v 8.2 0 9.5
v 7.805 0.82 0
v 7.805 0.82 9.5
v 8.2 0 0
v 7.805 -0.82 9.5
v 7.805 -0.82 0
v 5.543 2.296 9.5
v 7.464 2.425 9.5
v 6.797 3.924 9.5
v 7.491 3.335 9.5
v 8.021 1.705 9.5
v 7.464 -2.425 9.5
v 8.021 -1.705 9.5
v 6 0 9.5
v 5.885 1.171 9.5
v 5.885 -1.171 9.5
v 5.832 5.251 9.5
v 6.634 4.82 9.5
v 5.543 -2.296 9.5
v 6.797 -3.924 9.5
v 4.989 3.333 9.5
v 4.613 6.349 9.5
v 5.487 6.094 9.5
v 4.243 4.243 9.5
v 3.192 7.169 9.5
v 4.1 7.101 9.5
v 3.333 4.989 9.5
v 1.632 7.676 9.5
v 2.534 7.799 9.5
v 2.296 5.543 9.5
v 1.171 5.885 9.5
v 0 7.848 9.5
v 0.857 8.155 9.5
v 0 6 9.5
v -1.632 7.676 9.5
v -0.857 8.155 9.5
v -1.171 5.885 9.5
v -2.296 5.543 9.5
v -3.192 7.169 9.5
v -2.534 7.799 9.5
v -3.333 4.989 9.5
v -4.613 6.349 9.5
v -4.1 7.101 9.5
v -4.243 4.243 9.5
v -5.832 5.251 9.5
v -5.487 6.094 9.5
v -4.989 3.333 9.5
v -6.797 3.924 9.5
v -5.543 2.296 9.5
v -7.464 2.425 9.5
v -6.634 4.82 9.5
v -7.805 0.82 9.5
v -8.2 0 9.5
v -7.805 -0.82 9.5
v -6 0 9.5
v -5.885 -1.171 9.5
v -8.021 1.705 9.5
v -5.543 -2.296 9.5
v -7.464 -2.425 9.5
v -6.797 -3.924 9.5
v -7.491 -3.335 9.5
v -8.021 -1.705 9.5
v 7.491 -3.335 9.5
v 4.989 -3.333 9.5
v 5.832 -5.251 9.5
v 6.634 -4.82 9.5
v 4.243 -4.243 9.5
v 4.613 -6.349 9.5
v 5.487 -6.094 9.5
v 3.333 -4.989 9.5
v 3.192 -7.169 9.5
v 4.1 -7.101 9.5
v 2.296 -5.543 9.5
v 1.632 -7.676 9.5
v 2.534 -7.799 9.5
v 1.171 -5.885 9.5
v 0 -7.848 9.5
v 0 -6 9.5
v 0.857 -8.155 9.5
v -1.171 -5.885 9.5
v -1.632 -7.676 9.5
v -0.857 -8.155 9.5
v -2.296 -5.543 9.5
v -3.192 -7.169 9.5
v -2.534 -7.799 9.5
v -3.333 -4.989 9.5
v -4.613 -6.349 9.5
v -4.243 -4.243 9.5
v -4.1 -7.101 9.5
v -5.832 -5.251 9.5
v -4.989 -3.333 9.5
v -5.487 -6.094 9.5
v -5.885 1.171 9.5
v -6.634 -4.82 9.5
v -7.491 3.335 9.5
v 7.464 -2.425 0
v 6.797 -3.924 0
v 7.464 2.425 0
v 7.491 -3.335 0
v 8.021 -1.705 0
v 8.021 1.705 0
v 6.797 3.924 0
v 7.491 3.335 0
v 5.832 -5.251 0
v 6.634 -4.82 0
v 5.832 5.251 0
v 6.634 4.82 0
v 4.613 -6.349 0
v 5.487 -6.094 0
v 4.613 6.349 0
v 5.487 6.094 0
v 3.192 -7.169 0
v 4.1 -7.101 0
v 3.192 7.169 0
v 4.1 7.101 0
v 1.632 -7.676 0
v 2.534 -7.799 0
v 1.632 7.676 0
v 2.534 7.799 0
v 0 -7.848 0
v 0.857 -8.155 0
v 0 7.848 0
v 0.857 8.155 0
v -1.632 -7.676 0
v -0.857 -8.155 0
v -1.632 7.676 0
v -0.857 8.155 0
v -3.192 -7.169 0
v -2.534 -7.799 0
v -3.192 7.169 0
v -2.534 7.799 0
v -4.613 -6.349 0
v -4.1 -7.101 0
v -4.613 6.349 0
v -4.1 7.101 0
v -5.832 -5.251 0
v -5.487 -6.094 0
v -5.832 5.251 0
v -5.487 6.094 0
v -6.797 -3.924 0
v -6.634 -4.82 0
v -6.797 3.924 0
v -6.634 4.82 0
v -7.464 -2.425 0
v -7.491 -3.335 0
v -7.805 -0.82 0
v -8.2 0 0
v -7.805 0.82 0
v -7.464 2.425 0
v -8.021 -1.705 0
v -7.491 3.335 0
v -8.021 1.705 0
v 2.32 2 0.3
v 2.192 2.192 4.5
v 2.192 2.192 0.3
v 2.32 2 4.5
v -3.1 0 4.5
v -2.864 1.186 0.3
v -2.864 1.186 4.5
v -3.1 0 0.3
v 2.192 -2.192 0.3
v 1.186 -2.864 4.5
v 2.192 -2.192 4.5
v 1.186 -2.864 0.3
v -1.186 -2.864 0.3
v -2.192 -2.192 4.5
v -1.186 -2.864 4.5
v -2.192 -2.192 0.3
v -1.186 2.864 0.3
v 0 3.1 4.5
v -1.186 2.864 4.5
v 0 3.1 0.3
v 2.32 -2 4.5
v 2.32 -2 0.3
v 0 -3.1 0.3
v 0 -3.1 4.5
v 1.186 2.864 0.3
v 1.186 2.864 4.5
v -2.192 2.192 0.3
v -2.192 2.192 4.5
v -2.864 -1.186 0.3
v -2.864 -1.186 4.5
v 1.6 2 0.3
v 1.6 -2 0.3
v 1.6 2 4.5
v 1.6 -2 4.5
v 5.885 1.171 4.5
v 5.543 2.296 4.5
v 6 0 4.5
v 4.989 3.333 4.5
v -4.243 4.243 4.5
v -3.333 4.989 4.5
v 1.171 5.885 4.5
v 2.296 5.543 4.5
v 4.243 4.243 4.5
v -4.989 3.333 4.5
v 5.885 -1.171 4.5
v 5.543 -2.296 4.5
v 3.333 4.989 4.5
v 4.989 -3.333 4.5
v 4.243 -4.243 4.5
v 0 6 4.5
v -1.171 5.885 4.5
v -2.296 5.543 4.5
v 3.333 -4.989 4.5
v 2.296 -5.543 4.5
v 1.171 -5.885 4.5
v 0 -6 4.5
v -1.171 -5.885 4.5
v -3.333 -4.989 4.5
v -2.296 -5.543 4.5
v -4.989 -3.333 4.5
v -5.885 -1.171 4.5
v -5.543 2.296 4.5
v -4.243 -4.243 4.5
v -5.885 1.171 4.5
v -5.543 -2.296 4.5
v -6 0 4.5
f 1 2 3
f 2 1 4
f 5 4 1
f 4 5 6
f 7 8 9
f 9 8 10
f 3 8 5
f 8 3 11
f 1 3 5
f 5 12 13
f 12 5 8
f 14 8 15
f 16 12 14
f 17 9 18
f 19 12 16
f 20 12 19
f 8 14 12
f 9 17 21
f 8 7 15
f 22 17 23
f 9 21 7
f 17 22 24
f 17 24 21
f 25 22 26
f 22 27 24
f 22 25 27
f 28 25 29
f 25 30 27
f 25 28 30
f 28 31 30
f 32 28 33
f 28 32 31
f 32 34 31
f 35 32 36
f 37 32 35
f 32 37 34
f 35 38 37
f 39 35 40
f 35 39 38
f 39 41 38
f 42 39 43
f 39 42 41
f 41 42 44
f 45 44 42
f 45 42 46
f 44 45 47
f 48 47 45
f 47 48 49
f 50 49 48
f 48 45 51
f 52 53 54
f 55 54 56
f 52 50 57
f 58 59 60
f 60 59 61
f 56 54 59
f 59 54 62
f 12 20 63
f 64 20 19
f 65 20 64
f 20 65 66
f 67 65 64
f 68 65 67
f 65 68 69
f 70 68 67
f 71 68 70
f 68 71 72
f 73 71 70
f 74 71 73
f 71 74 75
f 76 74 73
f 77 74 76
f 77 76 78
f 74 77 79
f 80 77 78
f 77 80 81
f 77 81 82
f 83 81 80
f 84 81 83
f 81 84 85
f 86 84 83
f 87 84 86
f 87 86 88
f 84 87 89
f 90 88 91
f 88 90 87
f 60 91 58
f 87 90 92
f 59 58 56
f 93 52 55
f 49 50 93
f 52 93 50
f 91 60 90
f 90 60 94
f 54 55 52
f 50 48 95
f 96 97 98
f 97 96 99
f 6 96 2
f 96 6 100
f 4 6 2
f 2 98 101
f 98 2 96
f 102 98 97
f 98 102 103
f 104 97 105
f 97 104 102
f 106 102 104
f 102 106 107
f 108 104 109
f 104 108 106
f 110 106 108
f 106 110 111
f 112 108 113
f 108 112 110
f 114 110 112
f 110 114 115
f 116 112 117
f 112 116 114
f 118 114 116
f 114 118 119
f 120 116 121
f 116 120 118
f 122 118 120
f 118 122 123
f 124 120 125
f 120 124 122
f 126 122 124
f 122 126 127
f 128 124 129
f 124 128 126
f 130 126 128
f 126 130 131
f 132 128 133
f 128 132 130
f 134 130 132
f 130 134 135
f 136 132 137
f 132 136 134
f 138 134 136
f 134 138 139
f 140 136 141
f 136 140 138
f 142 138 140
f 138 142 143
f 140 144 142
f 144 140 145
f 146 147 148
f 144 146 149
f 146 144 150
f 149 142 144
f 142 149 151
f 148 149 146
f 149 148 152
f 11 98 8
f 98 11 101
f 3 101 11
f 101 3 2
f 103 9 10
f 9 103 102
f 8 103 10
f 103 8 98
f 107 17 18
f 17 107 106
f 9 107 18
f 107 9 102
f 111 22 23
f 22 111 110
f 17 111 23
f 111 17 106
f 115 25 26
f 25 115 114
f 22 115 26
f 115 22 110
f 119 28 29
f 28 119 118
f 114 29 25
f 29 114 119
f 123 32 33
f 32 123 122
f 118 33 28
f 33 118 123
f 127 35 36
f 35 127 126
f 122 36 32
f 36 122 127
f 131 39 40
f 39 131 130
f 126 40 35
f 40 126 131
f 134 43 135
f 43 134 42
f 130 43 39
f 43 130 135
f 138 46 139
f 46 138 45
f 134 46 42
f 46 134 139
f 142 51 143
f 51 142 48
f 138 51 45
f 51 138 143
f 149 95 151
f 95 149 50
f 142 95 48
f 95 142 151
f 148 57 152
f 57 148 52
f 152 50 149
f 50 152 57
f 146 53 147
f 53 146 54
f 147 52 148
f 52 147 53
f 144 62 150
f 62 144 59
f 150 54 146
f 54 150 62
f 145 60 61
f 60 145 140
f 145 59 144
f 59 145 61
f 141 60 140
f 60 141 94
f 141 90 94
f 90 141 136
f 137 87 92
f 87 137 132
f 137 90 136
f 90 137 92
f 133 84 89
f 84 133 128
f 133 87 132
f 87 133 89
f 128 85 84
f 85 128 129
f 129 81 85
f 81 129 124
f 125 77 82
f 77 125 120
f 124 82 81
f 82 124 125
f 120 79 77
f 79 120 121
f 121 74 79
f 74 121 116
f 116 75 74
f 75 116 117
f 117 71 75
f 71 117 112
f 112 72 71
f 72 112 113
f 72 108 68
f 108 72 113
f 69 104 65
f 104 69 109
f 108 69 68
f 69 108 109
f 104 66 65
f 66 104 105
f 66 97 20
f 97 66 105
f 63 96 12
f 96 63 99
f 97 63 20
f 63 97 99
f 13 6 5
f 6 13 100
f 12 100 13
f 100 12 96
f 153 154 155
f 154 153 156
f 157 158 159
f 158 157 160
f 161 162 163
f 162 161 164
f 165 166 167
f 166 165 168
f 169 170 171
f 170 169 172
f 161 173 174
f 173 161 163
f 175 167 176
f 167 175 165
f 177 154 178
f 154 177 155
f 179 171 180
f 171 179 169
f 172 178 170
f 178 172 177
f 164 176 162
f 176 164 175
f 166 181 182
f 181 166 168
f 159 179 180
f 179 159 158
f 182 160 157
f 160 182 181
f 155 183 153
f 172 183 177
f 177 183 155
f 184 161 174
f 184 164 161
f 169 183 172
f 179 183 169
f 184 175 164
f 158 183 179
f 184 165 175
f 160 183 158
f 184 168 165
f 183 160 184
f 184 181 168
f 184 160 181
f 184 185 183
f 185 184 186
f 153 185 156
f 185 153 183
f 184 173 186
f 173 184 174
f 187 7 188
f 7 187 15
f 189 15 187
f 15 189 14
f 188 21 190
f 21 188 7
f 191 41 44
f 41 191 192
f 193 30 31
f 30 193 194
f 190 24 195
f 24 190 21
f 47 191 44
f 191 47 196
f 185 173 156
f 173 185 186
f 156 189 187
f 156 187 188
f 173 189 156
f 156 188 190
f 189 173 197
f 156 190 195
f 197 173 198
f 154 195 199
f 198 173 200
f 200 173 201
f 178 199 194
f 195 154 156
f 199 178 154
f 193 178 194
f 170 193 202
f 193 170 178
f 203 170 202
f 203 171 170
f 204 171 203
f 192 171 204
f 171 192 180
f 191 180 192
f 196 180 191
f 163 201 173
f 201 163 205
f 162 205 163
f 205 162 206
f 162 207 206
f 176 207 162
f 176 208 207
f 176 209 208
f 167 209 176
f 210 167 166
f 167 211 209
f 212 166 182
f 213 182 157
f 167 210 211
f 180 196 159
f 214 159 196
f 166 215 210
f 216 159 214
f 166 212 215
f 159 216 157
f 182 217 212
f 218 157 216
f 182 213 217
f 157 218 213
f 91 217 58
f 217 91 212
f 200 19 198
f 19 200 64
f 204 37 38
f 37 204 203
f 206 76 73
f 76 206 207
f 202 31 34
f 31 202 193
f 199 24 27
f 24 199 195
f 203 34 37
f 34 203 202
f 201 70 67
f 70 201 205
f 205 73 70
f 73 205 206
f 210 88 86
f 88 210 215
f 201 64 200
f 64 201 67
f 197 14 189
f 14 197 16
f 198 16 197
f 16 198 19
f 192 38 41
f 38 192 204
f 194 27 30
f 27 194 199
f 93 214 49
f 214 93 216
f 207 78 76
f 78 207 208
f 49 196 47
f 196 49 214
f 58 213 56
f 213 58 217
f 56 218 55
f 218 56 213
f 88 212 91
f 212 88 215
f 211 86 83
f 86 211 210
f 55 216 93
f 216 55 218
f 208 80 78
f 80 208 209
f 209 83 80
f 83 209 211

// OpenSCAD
/*
difference() {
    cylinder(8, 7, 7, $fn=8);
    translate([0, 0, 0.5]) cylinder(5, 3+0.1, 3+0.1, $fn=16);
    translate([0, 0, 4.5]) cylinder(10, 6.5, 6.5, $fn=8);
}
*/


difference() {
    union() {
        // 원래 knob 형상
        cylinder(9.5, 7, 7, $fn=16);

        // 돌기 추가 (8개 반복)
        for (i = [0:30]) {
            rotate([0, 0, i * 6 *2])  // 360도 / 8 = 45도 간격
            translate([7, 0, 0])  // 반지름보다 약간 바깥쪽에 위치, 높이 z=3에서 시작
            cylinder(h=9.5, r=1.2, $fn=7);  // 돌기 모양
        }
    }

    // 내부 잘라내는 구조 유지
    difference() {
        translate([0, 0, 0.5-0.2]) cylinder(5, 3+0.1, 3+0.1, $fn=16);
        translate([1.5+0.1, -2, 0.5-0.2]) cube([4,4,5]);  
    }
    translate([0, 0, 4.5]) cylinder(10, 6, 6, $fn=32);
}
